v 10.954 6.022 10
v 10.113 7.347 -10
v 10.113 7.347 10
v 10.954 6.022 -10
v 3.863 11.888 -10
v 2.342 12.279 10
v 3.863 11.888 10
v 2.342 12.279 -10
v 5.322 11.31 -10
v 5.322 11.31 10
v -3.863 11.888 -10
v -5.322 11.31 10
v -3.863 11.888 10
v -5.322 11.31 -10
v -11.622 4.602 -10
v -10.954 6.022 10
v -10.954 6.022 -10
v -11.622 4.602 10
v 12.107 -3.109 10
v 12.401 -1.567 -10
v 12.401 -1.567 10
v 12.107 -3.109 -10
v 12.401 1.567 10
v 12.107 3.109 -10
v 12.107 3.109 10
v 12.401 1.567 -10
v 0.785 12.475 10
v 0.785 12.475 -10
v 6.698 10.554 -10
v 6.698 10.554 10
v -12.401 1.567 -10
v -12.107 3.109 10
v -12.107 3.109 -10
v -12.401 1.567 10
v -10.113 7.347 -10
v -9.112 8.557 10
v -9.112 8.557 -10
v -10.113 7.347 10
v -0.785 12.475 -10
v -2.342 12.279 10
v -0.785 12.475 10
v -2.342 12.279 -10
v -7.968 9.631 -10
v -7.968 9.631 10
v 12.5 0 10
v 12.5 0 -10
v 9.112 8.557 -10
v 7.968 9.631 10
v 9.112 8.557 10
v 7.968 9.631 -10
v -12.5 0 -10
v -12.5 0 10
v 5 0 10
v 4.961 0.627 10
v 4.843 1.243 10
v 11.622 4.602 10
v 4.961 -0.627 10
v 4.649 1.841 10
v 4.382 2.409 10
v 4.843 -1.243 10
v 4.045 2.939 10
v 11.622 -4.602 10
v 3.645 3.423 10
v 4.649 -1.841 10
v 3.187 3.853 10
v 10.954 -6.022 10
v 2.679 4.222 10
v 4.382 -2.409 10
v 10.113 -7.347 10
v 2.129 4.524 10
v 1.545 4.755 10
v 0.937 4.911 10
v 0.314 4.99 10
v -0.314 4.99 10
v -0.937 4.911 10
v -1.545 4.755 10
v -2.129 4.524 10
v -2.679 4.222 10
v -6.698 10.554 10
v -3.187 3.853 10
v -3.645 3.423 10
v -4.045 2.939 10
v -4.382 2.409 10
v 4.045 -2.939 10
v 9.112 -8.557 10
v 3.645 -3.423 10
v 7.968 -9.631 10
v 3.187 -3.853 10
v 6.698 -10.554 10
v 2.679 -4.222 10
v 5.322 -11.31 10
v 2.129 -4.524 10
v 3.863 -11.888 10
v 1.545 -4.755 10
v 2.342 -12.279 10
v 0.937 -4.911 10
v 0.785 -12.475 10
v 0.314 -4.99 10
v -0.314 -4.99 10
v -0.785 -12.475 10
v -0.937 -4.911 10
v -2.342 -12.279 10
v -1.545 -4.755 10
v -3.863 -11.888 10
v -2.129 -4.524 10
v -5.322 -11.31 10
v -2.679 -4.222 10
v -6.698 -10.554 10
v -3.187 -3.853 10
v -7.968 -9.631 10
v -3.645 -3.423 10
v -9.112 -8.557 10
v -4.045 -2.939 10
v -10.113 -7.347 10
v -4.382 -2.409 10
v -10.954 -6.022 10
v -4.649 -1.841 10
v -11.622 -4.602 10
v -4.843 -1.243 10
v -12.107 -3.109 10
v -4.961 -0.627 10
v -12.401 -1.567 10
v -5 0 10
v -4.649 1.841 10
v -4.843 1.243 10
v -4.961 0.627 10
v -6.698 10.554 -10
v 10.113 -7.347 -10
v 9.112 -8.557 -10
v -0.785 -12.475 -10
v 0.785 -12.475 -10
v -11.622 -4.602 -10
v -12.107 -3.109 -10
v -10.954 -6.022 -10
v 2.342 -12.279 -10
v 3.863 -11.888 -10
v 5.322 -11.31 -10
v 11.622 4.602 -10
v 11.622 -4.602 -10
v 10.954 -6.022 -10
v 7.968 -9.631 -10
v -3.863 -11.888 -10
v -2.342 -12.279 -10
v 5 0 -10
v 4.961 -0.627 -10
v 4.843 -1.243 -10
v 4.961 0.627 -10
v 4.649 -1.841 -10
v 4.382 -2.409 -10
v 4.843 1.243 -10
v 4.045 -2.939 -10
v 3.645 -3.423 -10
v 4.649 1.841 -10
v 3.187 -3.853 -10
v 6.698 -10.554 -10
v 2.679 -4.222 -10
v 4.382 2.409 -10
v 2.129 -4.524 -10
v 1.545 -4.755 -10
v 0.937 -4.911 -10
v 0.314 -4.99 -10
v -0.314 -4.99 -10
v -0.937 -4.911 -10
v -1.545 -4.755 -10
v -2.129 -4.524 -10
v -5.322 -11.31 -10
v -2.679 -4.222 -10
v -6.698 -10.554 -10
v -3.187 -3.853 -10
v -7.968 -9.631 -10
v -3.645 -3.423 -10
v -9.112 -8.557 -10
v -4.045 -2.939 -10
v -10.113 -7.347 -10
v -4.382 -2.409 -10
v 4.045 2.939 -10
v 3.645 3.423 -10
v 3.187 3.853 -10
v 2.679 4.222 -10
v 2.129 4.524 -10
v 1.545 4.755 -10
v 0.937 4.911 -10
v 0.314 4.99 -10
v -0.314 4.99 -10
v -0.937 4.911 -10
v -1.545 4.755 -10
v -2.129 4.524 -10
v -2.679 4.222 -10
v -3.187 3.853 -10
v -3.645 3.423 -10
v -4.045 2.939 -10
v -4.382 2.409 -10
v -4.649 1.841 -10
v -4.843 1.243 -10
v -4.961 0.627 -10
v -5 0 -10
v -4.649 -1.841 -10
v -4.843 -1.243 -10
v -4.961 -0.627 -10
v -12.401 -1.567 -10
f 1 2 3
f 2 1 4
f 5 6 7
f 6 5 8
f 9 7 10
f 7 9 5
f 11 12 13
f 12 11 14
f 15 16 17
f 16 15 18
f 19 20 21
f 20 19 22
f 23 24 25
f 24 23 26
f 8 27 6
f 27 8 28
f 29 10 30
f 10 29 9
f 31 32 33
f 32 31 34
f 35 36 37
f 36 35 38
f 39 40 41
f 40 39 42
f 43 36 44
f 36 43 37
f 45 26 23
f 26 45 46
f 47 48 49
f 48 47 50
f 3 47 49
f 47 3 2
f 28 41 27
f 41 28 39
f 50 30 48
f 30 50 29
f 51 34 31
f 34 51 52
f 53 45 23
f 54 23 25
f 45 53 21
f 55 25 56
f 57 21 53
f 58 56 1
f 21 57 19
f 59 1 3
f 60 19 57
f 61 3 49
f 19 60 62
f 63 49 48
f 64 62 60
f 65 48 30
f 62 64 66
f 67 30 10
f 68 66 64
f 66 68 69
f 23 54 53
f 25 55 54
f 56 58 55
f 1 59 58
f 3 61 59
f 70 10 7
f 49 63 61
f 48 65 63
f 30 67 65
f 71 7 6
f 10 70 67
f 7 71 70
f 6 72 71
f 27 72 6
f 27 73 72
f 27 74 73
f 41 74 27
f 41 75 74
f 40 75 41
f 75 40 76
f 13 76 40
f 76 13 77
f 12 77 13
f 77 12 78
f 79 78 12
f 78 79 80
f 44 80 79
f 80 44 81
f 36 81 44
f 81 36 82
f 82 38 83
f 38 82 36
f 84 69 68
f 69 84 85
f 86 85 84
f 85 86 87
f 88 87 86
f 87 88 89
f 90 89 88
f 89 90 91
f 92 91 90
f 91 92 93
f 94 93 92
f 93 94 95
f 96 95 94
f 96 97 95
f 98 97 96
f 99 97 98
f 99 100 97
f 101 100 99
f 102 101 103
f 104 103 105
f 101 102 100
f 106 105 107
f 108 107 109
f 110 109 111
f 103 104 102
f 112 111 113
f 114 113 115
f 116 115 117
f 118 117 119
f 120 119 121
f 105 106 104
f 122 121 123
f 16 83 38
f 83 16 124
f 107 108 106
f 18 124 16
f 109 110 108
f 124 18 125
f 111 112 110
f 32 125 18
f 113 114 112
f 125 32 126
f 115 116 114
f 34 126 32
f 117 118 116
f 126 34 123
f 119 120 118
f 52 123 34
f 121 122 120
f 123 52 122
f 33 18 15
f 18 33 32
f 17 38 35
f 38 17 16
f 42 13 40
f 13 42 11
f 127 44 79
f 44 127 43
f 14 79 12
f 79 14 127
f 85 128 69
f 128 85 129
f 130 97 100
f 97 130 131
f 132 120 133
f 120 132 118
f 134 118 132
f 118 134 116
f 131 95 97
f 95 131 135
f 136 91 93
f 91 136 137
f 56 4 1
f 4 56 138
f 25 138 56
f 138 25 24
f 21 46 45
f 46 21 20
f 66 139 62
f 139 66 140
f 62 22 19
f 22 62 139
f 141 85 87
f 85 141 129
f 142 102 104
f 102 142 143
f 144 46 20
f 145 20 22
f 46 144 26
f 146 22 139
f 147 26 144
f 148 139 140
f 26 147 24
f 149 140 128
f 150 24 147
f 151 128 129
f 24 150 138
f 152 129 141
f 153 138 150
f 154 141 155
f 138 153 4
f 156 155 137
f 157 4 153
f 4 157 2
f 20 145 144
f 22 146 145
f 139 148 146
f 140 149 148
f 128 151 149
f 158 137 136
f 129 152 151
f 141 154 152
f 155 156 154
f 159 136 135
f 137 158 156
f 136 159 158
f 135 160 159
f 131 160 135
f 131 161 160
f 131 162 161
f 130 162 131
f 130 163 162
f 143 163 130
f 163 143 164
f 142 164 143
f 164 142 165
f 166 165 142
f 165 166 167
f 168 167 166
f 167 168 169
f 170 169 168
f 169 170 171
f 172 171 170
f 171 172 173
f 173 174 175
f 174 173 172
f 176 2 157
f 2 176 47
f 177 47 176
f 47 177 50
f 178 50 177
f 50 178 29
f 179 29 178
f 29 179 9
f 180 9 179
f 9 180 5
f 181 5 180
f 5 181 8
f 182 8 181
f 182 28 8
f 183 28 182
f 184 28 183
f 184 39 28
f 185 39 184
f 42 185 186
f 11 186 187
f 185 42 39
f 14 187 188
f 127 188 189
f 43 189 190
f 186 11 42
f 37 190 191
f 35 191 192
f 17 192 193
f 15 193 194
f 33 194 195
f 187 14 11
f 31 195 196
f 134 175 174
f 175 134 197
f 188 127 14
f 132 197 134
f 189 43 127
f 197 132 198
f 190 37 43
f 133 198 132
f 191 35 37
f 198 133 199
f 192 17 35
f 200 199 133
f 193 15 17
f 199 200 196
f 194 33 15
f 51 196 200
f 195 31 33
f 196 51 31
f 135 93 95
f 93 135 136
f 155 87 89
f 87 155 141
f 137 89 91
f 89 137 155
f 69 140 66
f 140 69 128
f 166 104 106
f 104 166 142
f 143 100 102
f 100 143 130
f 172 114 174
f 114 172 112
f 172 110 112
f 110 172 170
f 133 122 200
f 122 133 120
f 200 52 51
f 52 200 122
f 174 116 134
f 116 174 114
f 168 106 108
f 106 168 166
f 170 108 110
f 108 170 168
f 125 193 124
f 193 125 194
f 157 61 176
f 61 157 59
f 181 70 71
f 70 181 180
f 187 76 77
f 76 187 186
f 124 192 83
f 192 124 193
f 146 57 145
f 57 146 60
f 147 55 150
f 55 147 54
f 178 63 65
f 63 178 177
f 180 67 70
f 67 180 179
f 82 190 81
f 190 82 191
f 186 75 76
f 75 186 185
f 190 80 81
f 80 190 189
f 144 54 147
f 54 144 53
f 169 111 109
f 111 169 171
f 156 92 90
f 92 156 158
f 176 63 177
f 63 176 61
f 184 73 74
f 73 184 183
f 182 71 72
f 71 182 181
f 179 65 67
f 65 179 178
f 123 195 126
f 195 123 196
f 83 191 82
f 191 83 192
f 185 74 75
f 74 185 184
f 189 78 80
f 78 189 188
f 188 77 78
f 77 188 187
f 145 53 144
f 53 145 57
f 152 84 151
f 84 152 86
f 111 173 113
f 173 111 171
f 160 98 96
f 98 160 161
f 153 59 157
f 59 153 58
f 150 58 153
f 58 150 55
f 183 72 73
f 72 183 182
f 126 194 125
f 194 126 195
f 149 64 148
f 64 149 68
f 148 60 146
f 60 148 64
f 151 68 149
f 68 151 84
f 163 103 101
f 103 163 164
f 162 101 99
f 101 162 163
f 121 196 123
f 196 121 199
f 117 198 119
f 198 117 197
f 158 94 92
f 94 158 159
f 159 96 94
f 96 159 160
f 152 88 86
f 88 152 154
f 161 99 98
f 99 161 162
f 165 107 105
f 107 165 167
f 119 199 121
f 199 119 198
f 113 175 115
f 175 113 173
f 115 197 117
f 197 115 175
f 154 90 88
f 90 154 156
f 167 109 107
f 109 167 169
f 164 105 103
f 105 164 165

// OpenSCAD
$fn = 50;


difference() {
	union() {
		translate(v = [0, 0, -10.0000000000]) {
			cylinder(h = 20, r = 12.5000000000);
		}
	}
	union() {
		translate(v = [0, 0, -100.0000000000]) {
			cylinder(h = 200, r = 5);
		}
	}
}
